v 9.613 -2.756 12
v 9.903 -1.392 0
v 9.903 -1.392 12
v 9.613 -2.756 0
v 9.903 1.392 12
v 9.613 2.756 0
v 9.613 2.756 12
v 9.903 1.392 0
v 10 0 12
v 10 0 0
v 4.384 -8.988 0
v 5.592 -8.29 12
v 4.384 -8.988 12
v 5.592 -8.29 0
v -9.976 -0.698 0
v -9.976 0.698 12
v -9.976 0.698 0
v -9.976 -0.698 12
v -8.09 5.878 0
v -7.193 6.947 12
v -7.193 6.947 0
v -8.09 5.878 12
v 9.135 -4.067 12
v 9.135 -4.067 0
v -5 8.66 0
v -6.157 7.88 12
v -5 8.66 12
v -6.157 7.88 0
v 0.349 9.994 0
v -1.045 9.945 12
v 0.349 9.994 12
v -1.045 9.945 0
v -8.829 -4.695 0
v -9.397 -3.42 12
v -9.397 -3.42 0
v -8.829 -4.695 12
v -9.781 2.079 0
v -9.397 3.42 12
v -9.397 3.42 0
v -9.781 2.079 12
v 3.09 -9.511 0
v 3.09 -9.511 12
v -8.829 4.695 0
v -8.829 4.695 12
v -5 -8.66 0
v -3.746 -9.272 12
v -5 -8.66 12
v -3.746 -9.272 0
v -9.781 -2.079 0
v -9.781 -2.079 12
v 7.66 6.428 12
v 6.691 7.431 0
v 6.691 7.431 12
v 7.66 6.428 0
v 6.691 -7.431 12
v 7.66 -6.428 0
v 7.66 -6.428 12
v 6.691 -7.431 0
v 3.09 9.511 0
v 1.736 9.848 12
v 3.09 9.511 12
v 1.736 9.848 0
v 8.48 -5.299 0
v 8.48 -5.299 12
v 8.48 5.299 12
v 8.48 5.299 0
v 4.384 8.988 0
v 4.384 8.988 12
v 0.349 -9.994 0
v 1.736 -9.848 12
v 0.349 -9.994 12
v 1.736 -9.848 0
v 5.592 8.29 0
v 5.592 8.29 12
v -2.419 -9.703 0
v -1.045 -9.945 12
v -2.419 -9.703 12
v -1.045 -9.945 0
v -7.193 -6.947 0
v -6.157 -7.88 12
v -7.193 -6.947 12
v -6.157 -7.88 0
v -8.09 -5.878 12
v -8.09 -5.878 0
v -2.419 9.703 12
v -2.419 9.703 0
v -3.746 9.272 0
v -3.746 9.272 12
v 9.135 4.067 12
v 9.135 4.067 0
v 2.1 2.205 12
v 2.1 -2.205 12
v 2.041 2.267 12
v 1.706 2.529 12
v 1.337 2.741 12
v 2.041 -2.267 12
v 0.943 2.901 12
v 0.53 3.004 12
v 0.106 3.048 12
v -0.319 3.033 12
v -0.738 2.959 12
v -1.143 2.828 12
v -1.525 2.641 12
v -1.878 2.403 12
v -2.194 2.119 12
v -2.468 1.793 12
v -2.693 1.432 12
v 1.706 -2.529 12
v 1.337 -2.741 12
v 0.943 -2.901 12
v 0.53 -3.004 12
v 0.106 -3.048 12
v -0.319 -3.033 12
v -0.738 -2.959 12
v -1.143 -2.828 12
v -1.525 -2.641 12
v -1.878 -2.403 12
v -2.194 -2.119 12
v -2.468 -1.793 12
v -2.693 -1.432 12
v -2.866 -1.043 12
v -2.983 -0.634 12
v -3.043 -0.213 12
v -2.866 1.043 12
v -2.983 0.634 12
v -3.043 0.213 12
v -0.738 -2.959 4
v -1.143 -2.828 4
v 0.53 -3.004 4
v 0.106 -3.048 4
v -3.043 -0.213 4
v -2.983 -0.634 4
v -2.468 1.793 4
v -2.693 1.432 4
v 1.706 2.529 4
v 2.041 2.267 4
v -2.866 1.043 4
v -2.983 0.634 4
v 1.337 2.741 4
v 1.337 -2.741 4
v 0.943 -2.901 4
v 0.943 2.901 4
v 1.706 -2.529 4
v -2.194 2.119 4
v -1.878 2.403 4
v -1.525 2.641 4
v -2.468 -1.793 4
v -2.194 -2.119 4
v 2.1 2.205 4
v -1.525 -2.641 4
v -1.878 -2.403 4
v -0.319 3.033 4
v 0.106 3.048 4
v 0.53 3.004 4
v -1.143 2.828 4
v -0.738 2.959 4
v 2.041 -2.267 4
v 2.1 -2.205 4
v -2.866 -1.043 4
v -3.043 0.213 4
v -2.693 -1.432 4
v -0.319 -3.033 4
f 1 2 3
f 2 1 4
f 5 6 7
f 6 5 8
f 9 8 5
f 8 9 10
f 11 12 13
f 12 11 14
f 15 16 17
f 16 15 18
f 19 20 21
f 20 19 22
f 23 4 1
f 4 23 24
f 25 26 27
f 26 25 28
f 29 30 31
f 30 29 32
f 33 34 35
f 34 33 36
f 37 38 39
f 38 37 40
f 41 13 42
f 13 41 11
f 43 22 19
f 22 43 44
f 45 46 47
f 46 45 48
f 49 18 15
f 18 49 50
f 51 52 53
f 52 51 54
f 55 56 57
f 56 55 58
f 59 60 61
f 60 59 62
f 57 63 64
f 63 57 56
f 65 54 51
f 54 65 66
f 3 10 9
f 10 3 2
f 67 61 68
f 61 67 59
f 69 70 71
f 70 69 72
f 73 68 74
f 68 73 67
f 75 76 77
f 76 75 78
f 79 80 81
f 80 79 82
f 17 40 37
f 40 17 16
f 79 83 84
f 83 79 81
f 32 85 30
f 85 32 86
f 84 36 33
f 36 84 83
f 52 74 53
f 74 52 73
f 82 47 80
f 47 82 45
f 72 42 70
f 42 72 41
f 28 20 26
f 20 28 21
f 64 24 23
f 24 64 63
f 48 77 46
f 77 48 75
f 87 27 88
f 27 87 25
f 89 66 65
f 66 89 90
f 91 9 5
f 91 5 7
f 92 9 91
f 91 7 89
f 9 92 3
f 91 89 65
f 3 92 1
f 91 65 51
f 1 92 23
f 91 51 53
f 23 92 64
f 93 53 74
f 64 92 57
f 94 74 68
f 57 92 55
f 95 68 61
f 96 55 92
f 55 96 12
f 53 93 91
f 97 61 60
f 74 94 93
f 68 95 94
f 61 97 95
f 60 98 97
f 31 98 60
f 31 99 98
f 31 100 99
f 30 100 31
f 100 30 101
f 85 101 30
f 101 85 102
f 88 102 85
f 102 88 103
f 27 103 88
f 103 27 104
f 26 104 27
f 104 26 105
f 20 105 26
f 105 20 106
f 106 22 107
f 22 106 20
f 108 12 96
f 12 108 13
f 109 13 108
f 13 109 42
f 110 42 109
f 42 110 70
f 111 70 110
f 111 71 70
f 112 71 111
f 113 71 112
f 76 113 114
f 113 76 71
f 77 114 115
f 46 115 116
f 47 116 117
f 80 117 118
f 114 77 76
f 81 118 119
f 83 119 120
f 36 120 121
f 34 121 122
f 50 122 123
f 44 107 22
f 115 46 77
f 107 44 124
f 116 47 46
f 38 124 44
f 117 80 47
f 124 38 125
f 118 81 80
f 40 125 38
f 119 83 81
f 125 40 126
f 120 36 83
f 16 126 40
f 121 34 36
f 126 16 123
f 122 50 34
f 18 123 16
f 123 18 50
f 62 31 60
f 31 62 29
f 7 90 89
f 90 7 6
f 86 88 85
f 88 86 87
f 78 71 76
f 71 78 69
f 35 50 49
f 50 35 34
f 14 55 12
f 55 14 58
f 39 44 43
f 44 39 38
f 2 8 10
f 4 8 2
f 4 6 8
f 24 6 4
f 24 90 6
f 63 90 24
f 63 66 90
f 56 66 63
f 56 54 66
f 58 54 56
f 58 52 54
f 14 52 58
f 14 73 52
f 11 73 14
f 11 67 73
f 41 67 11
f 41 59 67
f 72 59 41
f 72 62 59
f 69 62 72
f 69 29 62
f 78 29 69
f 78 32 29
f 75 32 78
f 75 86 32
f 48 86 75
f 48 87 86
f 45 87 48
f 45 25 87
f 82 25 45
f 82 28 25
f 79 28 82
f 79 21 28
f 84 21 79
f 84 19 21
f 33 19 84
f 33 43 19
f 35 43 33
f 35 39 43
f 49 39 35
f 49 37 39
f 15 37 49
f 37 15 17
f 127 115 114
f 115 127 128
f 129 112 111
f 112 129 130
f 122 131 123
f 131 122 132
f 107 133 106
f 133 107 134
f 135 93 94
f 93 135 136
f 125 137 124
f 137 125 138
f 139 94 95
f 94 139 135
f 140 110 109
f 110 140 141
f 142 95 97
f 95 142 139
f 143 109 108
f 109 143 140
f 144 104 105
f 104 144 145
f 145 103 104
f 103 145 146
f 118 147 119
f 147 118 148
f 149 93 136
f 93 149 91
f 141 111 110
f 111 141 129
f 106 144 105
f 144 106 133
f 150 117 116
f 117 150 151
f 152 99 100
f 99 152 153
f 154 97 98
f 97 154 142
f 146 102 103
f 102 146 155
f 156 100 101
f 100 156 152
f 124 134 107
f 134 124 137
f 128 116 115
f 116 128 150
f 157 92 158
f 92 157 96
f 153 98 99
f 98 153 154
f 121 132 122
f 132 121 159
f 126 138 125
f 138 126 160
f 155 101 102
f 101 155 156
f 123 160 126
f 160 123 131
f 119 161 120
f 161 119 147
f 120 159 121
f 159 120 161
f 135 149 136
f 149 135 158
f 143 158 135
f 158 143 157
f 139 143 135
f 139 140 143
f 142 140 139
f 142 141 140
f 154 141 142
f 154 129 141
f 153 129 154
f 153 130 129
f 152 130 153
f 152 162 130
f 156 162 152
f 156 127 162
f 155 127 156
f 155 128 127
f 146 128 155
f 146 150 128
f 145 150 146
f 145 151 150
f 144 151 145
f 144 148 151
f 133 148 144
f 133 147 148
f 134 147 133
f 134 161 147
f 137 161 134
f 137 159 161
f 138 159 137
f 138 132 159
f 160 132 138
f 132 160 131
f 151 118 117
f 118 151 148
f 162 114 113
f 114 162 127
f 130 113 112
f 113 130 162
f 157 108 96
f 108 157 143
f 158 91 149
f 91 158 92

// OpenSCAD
color([1,1,1]){
difference(){
    cylinder(r=20/2, h=12, $fn=45);
    
    translate([0,0,4])
    cylinder(r=6.1/2, h=12, $fn=45);
}

translate([4.6,0,8/2 + 4])
cube([5,5,8], center=true);
}
